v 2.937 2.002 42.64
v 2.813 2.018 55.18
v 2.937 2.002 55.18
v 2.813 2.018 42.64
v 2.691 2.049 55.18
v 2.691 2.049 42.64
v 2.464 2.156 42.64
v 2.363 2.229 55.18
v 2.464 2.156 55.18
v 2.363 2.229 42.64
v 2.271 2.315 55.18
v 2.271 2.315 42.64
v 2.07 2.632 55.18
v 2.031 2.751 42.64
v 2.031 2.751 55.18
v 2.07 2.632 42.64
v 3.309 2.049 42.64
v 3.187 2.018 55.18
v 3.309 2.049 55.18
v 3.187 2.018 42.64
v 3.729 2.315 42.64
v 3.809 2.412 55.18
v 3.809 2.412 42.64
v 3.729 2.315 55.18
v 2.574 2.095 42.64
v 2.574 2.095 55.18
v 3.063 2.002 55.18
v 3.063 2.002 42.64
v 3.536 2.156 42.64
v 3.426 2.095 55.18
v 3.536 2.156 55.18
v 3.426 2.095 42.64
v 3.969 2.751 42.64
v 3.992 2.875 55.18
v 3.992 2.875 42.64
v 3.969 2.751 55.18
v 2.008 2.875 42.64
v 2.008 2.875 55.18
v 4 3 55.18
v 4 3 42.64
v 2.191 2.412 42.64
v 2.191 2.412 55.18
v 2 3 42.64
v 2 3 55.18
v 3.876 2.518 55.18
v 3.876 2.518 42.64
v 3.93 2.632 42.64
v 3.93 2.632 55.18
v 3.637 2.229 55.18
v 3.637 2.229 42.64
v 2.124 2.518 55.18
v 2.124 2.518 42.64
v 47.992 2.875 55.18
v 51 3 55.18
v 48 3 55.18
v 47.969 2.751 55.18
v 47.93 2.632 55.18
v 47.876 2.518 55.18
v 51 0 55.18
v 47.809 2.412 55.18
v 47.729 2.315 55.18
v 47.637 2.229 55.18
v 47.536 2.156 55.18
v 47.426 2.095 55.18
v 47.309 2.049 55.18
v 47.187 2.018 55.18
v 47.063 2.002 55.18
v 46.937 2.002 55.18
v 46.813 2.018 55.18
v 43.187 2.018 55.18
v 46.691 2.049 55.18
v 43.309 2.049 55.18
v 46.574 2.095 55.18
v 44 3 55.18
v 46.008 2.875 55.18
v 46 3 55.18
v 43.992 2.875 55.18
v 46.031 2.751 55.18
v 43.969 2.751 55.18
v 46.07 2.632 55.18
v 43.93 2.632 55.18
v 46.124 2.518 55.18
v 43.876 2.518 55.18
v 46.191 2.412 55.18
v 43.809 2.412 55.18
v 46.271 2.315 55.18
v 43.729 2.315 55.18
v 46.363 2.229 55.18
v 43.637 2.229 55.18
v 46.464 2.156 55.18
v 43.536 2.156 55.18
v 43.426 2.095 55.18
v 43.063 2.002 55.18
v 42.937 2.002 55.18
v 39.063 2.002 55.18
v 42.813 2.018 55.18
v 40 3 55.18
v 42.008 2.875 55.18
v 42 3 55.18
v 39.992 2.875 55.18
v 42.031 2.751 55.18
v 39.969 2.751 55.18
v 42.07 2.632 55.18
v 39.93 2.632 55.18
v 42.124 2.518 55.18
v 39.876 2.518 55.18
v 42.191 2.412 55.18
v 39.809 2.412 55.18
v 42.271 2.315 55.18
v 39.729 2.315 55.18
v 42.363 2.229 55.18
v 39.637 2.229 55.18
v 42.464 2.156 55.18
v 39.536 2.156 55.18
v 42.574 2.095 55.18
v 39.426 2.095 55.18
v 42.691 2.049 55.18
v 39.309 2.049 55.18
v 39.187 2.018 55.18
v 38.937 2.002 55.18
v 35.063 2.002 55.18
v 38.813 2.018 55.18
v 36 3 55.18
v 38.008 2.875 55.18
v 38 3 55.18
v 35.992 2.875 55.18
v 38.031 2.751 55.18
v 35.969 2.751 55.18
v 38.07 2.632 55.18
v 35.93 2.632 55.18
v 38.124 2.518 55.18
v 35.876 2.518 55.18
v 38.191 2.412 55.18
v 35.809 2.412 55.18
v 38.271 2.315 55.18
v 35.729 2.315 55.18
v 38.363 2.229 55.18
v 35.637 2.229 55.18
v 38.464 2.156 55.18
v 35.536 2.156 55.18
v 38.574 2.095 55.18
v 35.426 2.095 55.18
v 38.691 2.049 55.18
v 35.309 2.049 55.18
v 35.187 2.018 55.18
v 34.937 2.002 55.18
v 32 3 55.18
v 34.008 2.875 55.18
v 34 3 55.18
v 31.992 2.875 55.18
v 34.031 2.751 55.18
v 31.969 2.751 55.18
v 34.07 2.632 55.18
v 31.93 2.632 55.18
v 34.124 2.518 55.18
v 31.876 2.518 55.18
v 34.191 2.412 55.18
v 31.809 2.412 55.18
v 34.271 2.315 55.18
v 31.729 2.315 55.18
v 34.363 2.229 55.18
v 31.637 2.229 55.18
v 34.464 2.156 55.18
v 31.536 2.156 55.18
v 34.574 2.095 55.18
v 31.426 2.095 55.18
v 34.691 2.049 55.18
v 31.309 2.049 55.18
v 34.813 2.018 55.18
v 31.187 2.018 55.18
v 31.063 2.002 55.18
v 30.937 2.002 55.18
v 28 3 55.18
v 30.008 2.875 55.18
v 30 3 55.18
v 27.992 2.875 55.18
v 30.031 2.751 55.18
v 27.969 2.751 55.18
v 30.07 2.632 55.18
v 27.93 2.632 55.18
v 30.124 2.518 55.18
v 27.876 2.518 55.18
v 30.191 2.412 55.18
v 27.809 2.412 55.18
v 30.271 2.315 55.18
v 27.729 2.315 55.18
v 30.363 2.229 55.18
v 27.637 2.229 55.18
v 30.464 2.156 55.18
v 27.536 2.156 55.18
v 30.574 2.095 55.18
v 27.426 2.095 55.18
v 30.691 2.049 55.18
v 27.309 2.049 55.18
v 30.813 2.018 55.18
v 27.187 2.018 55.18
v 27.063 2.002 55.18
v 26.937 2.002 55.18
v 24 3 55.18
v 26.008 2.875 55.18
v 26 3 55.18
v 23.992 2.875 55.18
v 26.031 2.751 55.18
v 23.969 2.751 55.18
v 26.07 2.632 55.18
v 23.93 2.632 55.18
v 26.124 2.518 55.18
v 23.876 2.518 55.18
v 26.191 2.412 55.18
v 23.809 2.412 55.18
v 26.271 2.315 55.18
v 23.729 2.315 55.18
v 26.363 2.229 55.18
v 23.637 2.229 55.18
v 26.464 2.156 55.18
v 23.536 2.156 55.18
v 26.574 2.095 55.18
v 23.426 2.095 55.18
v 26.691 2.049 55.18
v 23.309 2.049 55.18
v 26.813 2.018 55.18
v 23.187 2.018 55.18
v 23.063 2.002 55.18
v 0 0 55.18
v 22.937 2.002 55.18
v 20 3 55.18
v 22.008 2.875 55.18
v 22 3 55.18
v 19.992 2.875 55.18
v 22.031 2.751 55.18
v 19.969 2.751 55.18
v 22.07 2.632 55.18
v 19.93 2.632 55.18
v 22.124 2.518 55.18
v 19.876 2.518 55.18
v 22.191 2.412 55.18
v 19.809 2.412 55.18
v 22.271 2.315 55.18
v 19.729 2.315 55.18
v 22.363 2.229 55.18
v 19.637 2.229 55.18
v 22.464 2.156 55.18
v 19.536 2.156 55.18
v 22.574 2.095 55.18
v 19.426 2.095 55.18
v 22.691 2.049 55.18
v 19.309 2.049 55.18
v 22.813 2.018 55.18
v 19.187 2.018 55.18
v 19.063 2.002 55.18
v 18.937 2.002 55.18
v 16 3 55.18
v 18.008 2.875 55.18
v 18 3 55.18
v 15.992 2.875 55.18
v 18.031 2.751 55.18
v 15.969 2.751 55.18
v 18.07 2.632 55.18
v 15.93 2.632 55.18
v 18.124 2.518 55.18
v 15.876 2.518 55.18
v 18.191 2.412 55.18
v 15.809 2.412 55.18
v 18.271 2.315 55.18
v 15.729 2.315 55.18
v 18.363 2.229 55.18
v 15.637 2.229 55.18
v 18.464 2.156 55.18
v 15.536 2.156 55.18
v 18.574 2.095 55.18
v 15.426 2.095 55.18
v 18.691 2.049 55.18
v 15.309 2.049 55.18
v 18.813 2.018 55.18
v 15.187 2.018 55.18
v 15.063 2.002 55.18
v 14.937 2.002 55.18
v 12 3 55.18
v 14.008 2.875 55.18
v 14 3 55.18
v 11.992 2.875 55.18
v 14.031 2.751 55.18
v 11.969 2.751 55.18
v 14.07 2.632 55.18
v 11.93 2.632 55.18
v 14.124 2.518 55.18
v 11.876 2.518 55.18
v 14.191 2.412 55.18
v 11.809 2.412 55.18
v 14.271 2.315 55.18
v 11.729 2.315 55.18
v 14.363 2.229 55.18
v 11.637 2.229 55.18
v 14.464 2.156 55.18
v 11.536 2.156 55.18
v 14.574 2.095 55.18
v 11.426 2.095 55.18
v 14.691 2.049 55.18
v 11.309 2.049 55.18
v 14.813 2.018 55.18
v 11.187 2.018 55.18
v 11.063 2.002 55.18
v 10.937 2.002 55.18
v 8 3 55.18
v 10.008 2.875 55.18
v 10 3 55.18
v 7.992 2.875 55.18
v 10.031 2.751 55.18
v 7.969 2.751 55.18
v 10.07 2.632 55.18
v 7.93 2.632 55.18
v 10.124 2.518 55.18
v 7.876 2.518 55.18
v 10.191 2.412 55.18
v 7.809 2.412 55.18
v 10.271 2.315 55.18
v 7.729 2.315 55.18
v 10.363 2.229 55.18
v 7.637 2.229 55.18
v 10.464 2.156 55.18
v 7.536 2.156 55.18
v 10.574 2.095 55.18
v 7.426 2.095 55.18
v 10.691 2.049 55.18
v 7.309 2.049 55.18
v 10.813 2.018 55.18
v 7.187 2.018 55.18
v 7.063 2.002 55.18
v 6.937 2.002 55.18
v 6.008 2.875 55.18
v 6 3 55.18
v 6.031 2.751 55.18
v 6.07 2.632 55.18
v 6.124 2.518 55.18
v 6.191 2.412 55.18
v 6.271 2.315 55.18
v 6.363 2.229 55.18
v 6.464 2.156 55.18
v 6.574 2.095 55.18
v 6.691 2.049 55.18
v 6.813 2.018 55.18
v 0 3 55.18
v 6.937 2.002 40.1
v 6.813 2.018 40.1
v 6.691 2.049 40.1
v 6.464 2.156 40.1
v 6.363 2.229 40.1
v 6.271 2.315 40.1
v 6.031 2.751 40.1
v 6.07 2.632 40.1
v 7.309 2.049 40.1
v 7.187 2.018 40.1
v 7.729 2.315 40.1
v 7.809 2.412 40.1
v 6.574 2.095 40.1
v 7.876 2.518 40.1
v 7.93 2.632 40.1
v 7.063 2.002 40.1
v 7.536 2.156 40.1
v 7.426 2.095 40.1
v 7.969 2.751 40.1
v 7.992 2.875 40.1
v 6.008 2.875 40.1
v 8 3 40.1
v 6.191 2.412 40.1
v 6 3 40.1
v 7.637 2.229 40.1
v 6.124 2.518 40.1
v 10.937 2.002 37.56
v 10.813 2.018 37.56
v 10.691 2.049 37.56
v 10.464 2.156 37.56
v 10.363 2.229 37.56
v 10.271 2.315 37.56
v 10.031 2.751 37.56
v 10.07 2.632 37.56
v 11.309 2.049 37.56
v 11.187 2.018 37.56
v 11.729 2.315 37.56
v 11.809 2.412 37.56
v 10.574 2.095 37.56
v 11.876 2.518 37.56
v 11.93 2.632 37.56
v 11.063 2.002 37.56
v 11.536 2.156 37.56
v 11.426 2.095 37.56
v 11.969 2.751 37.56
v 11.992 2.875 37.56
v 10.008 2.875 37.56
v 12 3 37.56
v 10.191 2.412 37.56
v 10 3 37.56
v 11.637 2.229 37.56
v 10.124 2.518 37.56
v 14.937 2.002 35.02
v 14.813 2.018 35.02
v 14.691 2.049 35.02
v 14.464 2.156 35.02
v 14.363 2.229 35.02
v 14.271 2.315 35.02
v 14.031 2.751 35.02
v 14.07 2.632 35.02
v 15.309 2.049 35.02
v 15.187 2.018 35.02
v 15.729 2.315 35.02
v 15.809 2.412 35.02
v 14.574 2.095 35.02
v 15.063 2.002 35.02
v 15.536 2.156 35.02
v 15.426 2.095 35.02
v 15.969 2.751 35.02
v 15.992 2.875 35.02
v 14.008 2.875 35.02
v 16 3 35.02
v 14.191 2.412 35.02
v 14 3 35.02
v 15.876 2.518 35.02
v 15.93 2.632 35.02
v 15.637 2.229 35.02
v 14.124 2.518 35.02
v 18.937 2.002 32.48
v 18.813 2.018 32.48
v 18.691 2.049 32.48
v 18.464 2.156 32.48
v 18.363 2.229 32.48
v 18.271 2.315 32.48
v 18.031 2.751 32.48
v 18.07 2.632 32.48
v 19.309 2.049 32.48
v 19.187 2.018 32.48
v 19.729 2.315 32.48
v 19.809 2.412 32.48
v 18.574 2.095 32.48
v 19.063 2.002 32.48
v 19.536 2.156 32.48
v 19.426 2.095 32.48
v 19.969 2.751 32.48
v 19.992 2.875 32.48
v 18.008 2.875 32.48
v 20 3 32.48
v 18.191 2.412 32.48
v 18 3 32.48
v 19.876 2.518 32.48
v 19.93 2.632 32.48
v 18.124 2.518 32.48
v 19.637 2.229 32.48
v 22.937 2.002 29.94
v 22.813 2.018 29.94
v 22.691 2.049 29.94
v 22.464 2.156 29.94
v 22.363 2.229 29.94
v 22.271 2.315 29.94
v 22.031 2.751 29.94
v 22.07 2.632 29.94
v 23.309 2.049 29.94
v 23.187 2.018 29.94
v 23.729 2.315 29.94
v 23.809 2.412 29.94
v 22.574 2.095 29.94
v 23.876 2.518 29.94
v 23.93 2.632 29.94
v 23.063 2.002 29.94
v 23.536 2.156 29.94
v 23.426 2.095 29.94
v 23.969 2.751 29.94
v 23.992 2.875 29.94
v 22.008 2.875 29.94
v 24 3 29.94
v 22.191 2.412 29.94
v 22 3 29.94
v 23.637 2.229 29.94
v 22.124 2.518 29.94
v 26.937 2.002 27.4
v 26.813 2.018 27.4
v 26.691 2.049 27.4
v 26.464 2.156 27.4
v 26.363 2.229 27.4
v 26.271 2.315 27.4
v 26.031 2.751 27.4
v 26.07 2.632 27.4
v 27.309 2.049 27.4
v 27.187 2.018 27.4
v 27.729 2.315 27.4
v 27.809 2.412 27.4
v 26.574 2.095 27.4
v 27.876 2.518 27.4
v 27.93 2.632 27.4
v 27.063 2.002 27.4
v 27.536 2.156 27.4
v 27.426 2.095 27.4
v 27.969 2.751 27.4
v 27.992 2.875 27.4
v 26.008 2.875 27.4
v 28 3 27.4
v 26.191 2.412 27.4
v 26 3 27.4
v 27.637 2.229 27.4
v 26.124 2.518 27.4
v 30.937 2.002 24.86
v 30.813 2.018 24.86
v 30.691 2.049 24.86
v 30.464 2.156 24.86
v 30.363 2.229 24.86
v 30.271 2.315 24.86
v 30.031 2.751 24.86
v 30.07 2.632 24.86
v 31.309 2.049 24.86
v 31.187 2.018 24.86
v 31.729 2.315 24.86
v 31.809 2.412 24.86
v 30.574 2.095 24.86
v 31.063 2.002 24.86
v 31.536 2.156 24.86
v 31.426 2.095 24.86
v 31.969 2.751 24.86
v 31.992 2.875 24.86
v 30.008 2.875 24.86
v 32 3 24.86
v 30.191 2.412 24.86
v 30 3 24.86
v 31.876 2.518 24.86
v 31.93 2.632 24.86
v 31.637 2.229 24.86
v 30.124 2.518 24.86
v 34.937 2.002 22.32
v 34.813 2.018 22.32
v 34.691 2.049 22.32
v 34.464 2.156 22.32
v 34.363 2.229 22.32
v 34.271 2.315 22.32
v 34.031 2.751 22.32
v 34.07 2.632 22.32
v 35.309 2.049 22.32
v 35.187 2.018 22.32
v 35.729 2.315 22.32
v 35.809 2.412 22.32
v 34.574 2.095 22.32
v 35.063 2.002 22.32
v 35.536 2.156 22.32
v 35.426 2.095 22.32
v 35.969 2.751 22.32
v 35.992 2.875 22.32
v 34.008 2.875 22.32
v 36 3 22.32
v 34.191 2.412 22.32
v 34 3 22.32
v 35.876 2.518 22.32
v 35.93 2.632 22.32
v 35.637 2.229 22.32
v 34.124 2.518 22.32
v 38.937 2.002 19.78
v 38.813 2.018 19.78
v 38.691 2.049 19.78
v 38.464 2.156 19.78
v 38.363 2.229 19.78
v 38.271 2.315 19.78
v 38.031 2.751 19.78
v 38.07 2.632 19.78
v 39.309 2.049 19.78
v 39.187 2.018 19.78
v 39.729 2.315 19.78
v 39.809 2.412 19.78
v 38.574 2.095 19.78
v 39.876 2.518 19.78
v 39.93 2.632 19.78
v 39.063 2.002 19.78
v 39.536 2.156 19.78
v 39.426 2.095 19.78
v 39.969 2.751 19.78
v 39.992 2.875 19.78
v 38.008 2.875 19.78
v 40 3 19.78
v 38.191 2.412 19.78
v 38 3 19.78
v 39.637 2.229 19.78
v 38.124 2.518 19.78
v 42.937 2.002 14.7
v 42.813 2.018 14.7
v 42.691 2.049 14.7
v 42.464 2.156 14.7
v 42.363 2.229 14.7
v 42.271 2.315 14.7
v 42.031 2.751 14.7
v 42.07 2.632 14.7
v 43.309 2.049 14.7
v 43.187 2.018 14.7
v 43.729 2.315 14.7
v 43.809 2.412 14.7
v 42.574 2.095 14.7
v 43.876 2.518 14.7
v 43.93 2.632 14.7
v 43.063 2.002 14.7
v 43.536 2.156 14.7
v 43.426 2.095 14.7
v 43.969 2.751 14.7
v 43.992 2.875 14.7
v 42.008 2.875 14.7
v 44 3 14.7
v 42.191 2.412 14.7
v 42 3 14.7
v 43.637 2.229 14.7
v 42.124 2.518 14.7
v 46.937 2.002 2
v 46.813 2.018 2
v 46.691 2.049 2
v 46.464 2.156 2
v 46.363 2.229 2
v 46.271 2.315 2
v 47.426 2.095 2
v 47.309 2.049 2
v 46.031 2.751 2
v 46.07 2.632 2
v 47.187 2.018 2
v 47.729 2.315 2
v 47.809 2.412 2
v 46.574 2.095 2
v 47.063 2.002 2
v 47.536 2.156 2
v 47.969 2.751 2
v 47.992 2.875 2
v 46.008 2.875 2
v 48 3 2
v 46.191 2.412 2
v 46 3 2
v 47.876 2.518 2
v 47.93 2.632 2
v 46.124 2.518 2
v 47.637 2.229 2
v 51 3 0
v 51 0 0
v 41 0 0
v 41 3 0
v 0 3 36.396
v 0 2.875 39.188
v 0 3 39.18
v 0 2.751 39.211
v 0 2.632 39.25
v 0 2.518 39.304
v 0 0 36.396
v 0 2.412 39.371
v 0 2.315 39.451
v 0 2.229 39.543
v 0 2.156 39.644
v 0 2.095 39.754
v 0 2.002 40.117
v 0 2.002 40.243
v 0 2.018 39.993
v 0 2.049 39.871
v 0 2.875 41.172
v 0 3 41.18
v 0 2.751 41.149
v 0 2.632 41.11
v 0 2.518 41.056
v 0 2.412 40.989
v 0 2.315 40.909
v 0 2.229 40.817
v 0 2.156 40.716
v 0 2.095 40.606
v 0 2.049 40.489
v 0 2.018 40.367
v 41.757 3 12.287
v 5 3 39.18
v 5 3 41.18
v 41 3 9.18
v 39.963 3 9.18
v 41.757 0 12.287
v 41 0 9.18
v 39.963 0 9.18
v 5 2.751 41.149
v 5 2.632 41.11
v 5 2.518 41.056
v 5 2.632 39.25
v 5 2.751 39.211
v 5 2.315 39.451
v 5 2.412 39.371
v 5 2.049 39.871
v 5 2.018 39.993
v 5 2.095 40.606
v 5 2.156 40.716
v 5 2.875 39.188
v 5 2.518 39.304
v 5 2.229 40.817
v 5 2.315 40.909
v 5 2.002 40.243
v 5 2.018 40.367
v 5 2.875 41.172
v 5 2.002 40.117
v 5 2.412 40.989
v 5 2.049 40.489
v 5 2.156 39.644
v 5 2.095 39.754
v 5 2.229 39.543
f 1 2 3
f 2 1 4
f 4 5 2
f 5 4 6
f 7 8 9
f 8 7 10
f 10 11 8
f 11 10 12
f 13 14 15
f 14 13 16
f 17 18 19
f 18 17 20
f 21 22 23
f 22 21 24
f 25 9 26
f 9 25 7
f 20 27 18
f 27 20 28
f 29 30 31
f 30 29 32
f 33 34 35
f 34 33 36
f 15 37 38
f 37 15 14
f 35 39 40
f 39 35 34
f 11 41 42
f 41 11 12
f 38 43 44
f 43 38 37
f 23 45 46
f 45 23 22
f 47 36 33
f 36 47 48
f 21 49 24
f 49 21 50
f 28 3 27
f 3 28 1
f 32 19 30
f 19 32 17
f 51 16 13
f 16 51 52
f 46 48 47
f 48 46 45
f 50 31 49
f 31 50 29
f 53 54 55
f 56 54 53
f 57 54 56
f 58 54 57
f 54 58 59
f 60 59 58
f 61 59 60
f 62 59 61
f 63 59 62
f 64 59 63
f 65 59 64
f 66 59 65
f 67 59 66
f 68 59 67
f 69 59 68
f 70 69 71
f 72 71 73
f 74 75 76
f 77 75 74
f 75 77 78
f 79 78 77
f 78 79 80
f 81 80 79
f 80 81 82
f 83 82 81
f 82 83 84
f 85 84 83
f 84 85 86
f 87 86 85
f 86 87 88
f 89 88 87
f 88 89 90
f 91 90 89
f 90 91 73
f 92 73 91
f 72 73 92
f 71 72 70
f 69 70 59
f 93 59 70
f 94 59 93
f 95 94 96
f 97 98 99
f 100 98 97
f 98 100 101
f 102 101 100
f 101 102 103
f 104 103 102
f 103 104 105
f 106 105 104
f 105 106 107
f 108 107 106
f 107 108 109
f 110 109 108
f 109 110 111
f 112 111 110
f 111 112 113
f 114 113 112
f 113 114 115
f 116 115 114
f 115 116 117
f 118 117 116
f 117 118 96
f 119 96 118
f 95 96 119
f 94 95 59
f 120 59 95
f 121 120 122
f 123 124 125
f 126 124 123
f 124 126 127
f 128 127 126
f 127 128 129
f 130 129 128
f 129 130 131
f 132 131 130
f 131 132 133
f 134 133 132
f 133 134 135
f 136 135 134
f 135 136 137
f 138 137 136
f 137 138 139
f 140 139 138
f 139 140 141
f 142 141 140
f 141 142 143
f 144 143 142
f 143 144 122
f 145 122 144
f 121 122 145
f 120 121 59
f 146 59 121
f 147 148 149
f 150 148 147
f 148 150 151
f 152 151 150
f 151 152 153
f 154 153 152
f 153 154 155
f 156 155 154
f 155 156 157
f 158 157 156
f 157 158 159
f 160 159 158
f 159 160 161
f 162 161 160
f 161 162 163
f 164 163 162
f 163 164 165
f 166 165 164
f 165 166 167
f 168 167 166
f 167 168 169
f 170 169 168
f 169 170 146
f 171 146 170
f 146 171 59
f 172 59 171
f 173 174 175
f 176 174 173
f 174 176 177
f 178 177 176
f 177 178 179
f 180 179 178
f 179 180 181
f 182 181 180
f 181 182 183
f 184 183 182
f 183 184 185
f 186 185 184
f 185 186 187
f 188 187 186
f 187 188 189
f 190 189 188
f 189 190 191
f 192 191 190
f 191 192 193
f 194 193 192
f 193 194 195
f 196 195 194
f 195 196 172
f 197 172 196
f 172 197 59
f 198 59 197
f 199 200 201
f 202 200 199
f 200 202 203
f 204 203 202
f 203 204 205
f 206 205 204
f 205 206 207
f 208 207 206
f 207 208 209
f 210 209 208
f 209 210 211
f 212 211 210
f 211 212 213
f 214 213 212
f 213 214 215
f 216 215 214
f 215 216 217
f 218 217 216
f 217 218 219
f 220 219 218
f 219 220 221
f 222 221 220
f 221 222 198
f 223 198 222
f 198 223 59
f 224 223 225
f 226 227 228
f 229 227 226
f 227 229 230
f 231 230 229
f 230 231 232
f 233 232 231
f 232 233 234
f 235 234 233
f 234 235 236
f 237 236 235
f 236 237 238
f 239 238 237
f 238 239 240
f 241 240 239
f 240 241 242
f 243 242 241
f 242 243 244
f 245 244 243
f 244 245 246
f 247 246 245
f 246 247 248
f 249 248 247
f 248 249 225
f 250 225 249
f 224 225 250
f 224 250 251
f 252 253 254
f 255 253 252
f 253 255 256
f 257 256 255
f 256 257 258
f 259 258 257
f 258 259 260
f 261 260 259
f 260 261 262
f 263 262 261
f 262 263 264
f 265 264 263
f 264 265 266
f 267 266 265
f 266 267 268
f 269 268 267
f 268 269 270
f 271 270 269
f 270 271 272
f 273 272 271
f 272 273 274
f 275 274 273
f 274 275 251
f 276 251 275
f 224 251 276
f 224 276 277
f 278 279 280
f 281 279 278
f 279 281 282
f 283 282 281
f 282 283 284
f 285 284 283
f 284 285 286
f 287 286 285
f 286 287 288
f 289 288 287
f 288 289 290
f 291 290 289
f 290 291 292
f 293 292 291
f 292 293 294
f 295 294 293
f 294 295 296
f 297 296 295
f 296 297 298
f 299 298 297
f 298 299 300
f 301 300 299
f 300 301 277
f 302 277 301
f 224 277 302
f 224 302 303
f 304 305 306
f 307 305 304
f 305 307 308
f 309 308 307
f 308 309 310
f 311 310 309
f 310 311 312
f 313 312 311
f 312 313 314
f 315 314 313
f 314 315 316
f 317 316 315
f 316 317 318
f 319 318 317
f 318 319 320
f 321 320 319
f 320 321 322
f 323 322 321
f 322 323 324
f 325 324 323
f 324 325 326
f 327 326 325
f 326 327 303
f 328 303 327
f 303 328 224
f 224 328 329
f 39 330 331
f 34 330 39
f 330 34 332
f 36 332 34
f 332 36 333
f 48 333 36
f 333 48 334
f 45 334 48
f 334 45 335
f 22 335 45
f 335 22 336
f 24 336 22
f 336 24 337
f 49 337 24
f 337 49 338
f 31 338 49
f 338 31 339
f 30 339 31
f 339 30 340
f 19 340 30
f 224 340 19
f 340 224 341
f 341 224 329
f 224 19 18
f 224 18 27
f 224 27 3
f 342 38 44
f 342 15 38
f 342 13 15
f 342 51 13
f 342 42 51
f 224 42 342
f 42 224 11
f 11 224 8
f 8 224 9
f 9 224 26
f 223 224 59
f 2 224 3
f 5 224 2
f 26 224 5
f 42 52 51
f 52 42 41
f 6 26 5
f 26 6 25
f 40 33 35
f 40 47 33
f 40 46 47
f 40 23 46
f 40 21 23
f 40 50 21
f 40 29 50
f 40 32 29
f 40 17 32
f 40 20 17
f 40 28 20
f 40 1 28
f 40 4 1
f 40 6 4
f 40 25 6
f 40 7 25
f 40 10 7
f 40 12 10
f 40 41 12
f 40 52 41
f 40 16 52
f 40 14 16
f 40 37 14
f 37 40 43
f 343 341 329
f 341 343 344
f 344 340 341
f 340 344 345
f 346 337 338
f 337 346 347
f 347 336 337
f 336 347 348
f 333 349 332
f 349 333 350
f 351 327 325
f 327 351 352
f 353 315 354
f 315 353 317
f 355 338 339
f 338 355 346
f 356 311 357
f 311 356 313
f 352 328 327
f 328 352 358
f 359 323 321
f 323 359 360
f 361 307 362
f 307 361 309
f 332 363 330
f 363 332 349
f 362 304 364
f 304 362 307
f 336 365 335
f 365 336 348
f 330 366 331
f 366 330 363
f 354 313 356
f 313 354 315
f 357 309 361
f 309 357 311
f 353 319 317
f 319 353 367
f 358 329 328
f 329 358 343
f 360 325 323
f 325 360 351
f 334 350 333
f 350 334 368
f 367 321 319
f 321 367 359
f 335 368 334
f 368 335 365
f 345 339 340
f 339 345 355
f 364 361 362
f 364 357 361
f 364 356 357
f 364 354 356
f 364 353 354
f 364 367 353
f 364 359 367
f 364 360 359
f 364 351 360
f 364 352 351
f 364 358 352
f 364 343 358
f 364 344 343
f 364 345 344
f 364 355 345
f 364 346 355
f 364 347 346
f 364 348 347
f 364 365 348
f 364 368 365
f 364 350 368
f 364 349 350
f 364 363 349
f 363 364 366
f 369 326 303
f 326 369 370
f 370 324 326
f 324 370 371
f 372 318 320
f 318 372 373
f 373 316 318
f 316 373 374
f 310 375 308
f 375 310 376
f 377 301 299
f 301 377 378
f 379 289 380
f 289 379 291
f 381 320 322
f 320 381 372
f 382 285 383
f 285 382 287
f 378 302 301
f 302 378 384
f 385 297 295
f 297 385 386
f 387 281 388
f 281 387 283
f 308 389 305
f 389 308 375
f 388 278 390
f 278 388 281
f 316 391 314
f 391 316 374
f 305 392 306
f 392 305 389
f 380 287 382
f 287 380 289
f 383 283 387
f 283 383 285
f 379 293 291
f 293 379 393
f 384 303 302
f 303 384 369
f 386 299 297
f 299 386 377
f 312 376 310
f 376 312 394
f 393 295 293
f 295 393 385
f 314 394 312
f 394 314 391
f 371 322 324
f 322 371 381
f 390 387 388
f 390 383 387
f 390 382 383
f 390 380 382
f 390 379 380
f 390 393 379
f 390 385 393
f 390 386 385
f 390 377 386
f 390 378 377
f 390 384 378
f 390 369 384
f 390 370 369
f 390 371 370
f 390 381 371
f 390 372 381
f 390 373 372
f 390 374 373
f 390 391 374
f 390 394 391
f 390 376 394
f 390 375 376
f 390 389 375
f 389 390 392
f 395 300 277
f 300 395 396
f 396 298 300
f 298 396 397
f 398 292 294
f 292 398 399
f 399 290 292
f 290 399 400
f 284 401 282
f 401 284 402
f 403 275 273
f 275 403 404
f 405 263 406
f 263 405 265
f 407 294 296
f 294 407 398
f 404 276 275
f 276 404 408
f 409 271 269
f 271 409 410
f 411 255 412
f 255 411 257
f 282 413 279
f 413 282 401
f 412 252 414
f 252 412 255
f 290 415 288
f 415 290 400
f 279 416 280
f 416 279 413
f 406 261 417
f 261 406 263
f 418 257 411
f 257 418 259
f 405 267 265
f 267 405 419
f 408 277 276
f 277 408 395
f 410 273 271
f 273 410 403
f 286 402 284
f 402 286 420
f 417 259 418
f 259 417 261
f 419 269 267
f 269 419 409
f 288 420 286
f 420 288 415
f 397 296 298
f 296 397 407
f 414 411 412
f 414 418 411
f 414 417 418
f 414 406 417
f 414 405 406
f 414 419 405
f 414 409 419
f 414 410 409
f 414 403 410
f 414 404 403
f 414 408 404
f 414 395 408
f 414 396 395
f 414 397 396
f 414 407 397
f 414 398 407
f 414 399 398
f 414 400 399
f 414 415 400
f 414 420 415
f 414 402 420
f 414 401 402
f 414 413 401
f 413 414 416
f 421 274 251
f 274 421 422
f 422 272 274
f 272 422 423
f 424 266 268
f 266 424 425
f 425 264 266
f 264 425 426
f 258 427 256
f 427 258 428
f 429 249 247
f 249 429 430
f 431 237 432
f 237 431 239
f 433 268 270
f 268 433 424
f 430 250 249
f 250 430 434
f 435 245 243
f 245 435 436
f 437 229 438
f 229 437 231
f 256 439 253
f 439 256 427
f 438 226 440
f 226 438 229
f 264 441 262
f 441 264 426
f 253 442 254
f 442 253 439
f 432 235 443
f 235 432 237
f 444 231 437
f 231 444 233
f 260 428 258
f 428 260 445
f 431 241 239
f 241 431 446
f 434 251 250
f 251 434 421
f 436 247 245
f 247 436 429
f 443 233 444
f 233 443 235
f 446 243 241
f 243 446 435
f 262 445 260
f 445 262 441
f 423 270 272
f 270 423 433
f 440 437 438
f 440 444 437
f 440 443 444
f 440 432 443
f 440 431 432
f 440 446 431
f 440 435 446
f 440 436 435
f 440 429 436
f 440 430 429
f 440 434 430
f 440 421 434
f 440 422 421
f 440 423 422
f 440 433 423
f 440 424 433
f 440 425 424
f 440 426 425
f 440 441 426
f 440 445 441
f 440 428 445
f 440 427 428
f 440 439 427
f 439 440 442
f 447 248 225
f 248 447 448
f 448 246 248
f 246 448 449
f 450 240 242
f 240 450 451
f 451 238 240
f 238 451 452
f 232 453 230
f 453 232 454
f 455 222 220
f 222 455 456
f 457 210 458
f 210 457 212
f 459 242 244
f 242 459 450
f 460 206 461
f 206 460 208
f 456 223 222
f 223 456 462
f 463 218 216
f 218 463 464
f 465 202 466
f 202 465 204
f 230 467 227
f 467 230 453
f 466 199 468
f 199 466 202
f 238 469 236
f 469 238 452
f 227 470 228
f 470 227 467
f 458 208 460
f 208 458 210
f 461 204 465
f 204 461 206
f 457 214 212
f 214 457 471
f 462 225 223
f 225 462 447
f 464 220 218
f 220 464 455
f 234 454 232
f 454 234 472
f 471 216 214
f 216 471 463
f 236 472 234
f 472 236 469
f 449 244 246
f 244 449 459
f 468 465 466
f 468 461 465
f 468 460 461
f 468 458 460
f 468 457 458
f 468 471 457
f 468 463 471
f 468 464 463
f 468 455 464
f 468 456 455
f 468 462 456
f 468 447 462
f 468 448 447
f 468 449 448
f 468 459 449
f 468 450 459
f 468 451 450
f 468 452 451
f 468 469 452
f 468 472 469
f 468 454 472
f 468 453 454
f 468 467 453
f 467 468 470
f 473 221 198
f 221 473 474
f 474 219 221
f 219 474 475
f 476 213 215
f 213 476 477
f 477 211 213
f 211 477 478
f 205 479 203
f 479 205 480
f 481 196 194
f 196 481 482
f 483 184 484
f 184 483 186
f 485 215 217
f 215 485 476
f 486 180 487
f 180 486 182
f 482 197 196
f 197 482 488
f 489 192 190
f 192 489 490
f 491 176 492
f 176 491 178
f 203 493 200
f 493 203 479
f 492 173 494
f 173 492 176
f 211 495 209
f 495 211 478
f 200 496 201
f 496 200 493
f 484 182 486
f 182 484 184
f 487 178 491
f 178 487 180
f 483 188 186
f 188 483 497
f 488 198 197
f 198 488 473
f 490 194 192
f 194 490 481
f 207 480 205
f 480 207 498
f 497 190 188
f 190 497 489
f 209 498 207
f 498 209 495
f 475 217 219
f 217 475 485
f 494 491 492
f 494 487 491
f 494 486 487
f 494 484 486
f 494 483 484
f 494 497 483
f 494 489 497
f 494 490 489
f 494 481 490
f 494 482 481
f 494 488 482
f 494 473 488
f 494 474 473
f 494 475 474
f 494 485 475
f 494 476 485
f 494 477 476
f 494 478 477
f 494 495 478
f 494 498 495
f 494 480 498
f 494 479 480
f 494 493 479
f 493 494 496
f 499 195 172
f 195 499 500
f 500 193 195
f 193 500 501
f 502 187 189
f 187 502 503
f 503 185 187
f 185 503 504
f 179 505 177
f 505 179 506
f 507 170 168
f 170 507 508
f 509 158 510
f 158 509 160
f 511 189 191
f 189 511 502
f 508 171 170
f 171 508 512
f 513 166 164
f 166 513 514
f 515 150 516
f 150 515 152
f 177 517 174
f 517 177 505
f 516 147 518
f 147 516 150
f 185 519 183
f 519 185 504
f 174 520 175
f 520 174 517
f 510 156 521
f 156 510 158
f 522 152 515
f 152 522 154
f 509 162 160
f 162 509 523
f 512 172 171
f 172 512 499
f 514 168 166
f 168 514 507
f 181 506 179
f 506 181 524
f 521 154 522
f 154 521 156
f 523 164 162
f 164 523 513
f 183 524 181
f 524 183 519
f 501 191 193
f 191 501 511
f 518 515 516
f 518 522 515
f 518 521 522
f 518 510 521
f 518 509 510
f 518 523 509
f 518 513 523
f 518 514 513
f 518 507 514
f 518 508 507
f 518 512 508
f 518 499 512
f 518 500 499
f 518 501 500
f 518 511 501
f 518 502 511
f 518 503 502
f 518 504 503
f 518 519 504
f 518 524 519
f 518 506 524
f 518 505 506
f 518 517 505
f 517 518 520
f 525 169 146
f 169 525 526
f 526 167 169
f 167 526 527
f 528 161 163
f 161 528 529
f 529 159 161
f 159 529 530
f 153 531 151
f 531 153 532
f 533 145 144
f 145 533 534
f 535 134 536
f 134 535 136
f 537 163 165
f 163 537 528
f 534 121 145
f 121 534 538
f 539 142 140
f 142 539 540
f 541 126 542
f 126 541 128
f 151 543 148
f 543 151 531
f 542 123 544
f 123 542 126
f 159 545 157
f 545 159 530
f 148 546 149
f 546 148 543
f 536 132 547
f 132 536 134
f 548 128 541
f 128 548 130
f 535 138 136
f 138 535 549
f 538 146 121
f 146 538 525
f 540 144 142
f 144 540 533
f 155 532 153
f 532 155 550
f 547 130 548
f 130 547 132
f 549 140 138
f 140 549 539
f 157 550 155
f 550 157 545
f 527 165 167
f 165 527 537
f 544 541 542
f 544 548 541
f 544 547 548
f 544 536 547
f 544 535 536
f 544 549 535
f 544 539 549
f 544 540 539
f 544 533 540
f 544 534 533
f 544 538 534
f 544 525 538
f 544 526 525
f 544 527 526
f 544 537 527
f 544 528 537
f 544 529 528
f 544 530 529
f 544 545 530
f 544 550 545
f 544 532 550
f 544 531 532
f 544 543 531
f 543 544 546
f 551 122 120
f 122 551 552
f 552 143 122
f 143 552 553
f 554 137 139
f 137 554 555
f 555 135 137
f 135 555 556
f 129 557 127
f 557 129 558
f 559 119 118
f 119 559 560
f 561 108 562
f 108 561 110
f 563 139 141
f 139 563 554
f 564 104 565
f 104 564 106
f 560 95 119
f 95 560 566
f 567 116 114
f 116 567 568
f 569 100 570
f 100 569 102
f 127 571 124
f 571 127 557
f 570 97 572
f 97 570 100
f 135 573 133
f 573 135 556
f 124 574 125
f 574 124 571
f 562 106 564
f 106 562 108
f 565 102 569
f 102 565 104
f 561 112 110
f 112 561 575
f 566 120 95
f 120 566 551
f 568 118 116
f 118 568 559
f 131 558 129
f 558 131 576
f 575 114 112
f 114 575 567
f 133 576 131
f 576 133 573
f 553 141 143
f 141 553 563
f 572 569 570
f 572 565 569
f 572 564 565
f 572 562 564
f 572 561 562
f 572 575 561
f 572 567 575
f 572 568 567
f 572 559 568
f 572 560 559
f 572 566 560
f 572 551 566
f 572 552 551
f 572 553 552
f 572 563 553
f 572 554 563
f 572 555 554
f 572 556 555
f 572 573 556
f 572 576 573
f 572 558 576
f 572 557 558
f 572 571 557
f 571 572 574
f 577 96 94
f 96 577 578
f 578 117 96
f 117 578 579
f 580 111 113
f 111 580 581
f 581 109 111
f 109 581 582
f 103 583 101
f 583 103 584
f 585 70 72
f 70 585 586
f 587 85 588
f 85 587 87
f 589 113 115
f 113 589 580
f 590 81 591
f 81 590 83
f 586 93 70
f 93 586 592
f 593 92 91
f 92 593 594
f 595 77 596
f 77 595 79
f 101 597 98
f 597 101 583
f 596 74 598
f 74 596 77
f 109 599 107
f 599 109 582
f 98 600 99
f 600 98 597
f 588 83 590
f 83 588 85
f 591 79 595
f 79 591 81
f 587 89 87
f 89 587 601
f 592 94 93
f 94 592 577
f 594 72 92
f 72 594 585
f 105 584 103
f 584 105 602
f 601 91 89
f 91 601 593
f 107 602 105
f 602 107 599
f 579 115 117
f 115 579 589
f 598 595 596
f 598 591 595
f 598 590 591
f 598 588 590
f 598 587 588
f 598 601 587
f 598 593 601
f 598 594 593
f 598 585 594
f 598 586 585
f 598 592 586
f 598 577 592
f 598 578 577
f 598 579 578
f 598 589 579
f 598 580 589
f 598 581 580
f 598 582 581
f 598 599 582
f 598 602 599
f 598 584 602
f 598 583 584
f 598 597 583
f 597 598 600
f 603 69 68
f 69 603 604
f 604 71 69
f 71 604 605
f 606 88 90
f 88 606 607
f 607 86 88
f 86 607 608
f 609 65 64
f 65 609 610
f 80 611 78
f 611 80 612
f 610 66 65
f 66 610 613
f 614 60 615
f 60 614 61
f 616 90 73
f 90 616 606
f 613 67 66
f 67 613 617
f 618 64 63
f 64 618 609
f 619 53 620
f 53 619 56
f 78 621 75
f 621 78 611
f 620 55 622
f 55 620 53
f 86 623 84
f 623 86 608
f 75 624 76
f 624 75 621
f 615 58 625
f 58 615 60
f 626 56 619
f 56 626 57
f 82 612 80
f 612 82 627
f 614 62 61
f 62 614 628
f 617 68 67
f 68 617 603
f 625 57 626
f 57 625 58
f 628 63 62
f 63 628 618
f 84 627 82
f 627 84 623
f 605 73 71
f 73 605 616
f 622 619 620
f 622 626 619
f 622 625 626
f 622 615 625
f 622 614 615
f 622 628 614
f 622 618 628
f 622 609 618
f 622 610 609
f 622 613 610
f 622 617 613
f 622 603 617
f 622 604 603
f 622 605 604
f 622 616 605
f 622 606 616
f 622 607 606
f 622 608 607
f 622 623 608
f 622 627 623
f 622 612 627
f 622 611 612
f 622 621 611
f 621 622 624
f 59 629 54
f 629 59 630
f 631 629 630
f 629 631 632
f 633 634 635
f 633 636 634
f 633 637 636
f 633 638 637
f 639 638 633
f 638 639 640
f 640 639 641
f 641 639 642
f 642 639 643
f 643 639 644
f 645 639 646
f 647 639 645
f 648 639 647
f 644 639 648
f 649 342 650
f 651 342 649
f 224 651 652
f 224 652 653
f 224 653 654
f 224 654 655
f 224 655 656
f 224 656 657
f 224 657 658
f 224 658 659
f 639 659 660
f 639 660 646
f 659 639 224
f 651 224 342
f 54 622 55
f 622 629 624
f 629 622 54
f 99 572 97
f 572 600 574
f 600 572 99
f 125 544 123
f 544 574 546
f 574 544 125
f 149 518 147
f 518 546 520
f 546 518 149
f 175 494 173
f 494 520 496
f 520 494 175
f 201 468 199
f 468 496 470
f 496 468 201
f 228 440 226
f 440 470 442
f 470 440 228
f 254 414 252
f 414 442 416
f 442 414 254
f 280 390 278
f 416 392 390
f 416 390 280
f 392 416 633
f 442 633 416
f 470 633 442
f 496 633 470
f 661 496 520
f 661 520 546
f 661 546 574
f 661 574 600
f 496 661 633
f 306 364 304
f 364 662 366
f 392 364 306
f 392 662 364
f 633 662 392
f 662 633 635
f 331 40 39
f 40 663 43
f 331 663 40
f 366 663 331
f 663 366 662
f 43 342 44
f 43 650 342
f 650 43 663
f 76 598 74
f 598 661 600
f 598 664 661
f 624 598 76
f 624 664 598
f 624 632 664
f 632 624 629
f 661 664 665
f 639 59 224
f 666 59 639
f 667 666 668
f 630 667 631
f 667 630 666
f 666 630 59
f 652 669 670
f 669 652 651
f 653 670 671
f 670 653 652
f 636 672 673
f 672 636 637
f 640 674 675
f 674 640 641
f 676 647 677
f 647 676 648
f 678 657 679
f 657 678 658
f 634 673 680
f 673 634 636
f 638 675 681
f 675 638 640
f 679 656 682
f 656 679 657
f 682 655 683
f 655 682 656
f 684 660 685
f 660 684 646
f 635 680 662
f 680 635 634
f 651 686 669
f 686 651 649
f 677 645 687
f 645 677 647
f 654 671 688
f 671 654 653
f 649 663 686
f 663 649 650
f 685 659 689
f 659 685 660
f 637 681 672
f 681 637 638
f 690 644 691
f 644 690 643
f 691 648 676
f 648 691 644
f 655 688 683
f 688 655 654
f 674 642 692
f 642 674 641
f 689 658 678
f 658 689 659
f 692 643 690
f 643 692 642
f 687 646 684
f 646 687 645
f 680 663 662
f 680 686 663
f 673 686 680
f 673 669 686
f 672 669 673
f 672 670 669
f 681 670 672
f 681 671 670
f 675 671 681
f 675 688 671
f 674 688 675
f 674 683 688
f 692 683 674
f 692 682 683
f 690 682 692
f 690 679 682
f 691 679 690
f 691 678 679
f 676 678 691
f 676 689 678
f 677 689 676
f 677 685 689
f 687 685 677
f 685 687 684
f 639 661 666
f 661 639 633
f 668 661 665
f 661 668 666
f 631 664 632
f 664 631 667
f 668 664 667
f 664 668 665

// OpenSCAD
// Breadboard wire stripping template.
// Mark Harrison, marhar@gmail.com

$fn=50;
stripped_len=5;
stripped_diam=2.0;
wire_diam=2;
hole_gap= 2;
box_end_len = 3;
function u(x) = x*2.54;

sizes=[1,2,3,4,5,6,7,8,9,10,12,17];
zz=box_end_len*4+u(sizes[len(sizes)-1]);
fgap = wire_diam+hole_gap;

module unit() {
  difference() {
    cube([box_end_len*1+fgap*len(sizes),(box_end_len*2)/2,zz]);
    for (i=[0:len(sizes)-1]) {
      depth=stripped_len*2+u(sizes[i]);
      #translate([box_end_len+fgap*i,box_end_len,zz-depth])
        cylinder(depth, d=wire_diam);
    }
    #translate([0,box_end_len,zz-15])
      rotate([0,90,0]) cylinder(stripped_len, d=stripped_diam);
  }
}

module unit2() {
  difference() {
    unit();
    translate([-30,0,-10])
      rotate([0,30,0])
        cube([box_end_len*1+fgap*len(sizes),(box_end_len*2)/2,zz]);
    translate([-10,0,-46])
        cube([box_end_len*1+fgap*len(sizes),(box_end_len*2)/2,zz]);
  }
}

unit2();
